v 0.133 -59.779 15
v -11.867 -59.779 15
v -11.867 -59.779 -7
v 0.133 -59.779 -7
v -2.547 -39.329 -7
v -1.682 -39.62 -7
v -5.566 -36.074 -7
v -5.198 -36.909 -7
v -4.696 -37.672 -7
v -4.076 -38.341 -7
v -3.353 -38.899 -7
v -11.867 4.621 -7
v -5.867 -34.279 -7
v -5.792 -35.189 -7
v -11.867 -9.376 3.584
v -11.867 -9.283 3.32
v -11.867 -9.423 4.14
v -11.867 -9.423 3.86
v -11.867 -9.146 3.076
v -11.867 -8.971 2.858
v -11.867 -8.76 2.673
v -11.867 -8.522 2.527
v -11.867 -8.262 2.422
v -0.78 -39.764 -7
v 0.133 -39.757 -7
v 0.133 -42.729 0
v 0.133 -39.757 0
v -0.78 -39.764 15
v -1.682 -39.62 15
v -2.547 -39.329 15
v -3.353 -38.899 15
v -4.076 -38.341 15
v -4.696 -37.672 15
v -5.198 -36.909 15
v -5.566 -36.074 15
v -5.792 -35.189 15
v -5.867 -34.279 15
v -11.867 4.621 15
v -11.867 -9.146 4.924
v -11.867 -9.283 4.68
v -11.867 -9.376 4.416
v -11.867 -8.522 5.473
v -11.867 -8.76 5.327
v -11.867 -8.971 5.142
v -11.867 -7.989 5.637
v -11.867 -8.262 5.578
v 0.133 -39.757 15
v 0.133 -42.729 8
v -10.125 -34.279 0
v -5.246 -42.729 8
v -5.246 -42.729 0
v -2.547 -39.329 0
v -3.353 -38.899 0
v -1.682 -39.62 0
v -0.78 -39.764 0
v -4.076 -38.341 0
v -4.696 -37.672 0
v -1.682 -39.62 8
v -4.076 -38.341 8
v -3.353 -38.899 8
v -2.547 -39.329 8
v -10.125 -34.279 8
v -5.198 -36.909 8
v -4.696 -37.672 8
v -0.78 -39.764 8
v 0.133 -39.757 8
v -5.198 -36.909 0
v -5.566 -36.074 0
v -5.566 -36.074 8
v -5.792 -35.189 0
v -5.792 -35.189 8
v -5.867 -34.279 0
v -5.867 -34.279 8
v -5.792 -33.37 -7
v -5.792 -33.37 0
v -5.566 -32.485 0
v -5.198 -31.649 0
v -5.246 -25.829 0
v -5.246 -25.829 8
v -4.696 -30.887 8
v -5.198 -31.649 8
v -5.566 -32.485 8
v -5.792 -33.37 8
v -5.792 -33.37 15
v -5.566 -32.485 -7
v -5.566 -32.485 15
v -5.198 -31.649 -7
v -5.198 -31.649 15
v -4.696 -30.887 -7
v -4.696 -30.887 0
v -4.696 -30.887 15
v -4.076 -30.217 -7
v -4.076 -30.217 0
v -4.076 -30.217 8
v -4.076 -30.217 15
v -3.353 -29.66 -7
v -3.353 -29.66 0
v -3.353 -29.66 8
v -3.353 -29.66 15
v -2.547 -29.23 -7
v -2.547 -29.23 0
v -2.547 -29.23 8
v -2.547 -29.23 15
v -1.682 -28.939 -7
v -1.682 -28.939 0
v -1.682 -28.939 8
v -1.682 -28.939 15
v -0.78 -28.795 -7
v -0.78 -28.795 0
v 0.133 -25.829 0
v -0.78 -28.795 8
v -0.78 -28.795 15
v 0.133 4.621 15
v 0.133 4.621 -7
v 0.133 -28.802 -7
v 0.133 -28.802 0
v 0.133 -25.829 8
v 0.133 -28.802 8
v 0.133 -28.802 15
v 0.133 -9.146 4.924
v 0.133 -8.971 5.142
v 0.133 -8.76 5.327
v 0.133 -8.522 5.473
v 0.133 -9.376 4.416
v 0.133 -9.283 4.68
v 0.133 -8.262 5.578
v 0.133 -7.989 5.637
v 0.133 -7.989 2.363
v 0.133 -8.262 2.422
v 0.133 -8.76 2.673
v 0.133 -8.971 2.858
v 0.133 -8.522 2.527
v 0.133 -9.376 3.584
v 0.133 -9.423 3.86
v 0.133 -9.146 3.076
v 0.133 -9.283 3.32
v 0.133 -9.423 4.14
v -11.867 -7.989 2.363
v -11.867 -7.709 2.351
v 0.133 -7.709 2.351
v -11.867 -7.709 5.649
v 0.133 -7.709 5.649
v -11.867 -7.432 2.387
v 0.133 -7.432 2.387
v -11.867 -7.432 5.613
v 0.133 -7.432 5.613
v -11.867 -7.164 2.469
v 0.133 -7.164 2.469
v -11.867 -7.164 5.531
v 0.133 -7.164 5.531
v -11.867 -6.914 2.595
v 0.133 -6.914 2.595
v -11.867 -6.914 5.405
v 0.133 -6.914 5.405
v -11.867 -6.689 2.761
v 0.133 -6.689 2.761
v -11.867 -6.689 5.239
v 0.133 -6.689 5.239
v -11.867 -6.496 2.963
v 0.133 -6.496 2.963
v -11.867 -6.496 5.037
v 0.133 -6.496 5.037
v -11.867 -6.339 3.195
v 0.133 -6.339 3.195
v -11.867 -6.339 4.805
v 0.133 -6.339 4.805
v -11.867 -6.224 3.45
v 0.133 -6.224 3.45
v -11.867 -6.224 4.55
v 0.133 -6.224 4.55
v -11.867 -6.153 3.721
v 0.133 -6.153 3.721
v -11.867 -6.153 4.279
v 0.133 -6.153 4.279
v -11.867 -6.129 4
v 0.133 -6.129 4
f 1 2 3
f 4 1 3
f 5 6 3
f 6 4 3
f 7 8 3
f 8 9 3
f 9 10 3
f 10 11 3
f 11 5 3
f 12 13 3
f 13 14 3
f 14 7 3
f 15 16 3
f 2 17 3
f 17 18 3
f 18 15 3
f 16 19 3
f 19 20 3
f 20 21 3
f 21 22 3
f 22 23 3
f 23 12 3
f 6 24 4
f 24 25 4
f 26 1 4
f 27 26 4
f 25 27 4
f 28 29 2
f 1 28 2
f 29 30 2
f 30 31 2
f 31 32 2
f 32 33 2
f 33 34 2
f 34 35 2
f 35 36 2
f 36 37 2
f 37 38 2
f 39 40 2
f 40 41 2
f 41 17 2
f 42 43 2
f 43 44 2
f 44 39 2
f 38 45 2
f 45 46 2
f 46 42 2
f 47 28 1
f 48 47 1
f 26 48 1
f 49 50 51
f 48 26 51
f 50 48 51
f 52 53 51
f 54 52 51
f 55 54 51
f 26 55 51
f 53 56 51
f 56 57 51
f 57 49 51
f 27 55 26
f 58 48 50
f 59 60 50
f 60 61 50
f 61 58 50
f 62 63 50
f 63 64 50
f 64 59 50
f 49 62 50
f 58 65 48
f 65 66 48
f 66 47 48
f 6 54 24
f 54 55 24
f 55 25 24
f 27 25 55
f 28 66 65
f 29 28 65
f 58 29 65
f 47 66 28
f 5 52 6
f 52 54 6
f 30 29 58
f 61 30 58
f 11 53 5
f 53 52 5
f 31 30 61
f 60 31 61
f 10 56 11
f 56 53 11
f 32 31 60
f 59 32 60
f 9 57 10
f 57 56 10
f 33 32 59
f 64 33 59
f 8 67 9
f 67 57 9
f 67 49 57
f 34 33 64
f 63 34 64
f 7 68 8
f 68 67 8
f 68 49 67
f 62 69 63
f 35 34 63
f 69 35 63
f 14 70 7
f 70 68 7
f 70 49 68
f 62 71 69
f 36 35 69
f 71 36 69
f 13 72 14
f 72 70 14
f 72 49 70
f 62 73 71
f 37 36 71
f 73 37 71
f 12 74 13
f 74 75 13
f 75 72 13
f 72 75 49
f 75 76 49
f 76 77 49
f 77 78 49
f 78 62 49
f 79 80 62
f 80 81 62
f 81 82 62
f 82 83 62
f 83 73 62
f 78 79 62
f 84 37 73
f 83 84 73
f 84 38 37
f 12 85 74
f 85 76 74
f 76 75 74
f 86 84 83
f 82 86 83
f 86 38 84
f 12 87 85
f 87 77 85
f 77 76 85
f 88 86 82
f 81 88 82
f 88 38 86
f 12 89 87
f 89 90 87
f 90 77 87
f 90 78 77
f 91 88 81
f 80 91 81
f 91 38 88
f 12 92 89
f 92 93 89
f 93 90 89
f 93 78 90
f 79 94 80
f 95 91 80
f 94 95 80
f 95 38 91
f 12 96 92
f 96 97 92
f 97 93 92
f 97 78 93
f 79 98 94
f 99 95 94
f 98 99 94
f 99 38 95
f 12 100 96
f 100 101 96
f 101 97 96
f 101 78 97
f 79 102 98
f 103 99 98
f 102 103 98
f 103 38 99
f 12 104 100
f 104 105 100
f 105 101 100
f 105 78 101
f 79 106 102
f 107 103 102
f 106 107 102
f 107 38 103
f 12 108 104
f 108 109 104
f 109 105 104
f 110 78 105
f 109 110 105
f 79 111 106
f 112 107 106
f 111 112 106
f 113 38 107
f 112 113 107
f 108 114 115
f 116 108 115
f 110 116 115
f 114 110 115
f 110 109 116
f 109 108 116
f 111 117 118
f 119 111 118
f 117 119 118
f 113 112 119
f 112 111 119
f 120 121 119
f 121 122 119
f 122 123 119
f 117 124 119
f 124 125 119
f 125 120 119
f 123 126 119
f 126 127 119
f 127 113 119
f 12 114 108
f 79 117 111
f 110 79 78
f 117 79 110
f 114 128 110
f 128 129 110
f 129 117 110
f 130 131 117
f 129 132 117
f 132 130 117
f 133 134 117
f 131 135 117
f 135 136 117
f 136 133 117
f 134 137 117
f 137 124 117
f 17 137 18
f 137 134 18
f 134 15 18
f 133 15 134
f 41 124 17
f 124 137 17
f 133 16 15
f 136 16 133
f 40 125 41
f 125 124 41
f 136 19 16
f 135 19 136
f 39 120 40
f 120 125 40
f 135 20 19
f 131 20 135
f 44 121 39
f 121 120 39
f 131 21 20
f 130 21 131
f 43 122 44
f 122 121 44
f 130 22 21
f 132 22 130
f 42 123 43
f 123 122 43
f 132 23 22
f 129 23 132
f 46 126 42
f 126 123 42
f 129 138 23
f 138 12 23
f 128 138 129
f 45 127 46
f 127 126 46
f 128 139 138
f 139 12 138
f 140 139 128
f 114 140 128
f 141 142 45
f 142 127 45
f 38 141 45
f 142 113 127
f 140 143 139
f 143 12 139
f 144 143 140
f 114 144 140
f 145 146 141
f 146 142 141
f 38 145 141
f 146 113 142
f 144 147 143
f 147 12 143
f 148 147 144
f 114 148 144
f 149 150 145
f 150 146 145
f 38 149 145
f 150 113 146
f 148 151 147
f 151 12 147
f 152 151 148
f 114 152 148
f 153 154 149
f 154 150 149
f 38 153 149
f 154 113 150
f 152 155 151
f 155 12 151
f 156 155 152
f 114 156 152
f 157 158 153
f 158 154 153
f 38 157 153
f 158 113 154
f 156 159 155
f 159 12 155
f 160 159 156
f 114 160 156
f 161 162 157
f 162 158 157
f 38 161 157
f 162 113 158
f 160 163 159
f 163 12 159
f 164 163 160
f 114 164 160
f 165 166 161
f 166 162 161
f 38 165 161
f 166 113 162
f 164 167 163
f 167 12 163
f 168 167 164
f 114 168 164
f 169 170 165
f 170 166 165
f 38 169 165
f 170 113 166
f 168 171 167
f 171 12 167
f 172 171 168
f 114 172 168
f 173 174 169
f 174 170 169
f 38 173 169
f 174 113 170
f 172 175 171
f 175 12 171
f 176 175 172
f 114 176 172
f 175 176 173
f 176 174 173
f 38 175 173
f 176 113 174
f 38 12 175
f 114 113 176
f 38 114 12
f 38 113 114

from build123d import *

# Parameters (mm, degrees)
SKETCH_1_W          = 23
SKETCH_1_H          = 64.4
EXTRUDE_1_DEPTH     = 8
SKETCH_3_W          = 23
SKETCH_3_H          = 64.4
SKETCH_3_R          = 5.5
EXTRUDE_2_DEPTH     = 7
SKETCH_4_W          = 23
SKETCH_4_H          = 64.4
SKETCH_4_R          = 5.5
EXTRUDE_3_DEPTH     = 7
SKETCH_5_R          = 1.65
CUT_EXTRUDE_1_DEPTH = 24
SKETCH_6_W          = 22
SKETCH_6_H          = 64.4
CUT_EXTRUDE_2_DEPTH = 11


with BuildPart() as part:
    # 草圖1 → 填料-伸長1 (new body)
    with BuildSketch(Plane.XY):
        with Locations((-0.36746988, -27.579314659)):
            Rectangle(SKETCH_1_W, SKETCH_1_H)
        Polygon((9.38974967, -34.279314659), (4.511139895, -25.829314659), (-5.246079654, -25.829314659), (-10.124689429, -34.279314659), (-5.246079654, -42.729314659), (4.511139895, -42.729314659), align=None, mode=Mode.SUBTRACT)
    extrude(amount=EXTRUDE_1_DEPTH)

    # 草圖3 → 填料-伸長2 (add)
    with BuildSketch(Plane.XY.offset(8)):
        with Locations((-0.36746988, -27.579314659)):
            Rectangle(SKETCH_3_W, SKETCH_3_H)
        with Locations((-0.36746988, -34.279314659)):
            Circle(SKETCH_3_R, mode=Mode.SUBTRACT)
    extrude(amount=EXTRUDE_2_DEPTH)

    # 草圖4 → 填料-伸長3 (add)
    with BuildSketch(Plane(origin=(0, 0, 0), x_dir=(-1, 0, 0), z_dir=(0, 0, -1))):
        with Locations((0.36746988, -27.579314659)):
            Rectangle(SKETCH_4_W, SKETCH_4_H)
        with Locations((0.36746988, -34.279314659)):
            Circle(SKETCH_4_R, mode=Mode.SUBTRACT)
    extrude(amount=EXTRUDE_3_DEPTH)

    # 草圖5 → 除料-伸長1 (cut, through all)
    with BuildSketch(Plane(origin=(11.13253012, 0, 0), x_dir=(0, 0, -1), z_dir=(1, 0, 0))):
        with Locations((-4, -7.779314659)):
            Circle(SKETCH_5_R)
    extrude(amount=-CUT_EXTRUDE_1_DEPTH, mode=Mode.SUBTRACT)

    # 草圖6 → 除料-伸長2 (cut)
    with BuildSketch(Plane(origin=(11.13253012, 0, 0), x_dir=(0, 0, -1), z_dir=(1, 0, 0))):
        with Locations((-4, -27.579314659)):
            Rectangle(SKETCH_6_W, SKETCH_6_H)
    extrude(amount=-CUT_EXTRUDE_2_DEPTH, mode=Mode.SUBTRACT)


solid = part.part
